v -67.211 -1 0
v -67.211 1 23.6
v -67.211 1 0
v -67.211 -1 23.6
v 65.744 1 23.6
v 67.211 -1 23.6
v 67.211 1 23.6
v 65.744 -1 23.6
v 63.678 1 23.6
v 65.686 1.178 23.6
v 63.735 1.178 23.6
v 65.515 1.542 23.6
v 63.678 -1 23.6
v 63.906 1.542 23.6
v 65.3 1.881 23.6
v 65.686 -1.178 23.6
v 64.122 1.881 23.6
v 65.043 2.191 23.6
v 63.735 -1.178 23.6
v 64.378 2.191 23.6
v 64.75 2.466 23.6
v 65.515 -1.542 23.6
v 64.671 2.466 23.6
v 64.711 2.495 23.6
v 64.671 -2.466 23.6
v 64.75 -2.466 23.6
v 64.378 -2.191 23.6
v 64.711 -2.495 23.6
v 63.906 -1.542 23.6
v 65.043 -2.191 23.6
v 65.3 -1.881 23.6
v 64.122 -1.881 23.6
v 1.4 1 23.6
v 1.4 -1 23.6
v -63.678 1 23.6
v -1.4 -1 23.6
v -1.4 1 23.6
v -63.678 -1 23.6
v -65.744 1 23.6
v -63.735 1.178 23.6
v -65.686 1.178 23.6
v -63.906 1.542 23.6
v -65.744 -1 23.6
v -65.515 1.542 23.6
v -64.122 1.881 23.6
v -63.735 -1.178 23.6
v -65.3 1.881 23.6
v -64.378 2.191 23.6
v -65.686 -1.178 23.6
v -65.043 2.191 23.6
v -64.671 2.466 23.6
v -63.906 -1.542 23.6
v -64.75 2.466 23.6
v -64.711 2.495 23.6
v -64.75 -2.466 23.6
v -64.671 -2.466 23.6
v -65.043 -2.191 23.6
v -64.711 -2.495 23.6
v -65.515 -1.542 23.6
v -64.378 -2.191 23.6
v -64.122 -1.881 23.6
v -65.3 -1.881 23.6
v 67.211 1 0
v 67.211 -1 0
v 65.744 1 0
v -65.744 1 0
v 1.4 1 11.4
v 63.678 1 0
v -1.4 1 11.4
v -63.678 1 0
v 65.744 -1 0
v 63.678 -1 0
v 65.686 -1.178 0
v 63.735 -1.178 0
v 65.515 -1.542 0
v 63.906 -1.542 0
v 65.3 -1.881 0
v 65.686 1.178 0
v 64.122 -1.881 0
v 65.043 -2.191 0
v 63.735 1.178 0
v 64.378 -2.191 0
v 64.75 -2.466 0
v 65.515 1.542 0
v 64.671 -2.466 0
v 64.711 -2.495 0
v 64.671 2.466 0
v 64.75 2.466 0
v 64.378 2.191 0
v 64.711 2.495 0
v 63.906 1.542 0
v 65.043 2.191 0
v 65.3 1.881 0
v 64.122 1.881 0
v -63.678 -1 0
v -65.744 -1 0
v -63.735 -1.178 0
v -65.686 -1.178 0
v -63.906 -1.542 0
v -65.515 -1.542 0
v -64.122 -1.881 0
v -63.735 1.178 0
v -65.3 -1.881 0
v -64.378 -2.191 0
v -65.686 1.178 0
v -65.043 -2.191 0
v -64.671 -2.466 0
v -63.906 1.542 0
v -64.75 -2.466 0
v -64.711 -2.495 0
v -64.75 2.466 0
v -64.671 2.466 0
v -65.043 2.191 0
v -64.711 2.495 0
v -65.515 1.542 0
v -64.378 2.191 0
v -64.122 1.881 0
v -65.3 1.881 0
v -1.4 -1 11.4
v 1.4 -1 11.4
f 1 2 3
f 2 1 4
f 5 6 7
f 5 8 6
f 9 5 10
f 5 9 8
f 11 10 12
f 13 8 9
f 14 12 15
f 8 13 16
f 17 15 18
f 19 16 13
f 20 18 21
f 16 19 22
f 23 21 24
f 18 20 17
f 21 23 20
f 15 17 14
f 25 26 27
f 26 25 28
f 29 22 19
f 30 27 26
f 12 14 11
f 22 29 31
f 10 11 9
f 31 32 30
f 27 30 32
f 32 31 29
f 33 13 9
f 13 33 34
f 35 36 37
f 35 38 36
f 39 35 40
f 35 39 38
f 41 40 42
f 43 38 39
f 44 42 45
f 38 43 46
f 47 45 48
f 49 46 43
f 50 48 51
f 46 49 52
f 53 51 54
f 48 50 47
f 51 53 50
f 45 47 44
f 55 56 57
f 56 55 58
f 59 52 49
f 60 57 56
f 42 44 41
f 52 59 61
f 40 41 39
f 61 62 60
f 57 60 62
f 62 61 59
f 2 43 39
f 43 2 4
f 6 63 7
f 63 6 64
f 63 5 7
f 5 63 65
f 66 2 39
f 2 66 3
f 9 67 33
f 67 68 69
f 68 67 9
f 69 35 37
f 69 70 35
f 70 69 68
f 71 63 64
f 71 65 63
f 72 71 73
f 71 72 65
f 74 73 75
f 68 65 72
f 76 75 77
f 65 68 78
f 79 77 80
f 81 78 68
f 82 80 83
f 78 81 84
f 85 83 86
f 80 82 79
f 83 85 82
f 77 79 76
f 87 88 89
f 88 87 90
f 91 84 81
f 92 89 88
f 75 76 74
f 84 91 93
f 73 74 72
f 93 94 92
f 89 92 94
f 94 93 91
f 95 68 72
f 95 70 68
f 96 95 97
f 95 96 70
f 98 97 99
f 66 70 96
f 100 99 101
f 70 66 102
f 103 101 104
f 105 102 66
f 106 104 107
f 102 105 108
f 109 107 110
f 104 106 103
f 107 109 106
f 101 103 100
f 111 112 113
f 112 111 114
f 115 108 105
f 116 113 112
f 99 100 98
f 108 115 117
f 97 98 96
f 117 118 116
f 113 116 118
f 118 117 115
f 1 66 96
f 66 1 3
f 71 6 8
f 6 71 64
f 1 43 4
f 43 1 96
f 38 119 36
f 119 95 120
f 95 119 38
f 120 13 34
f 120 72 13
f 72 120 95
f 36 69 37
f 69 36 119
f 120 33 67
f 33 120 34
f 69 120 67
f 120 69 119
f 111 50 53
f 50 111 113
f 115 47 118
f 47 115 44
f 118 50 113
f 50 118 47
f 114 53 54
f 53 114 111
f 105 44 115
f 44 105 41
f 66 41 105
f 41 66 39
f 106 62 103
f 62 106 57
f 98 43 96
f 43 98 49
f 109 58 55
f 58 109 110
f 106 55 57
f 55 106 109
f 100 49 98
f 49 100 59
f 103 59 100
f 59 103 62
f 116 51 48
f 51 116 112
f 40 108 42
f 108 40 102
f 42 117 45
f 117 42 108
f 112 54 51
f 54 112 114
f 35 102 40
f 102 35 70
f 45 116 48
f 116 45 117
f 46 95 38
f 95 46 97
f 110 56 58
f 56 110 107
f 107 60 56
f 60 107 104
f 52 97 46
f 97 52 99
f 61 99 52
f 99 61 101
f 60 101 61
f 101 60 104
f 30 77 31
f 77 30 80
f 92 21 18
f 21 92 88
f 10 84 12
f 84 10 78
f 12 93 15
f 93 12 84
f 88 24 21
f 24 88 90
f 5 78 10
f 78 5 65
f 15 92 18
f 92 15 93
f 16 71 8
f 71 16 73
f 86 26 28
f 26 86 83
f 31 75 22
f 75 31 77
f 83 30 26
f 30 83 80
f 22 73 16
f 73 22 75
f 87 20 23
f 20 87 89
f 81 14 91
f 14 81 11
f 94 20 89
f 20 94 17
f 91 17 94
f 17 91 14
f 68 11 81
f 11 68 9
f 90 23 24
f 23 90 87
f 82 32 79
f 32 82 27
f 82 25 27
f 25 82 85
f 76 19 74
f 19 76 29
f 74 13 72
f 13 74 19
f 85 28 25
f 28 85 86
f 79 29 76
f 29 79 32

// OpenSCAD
// file: token-organizer-separator-module.scad
module renderSeparator(x, y, z, r, s) {
  union() {
    difference() {
      translate([0, 0, z / 2]) cube([x - r * 1.75, y, z], center=true);
      translate([0, 0, z - z / 4]) cube([y + s * 2, y + s * 2, z / 2 + s * 2], center=true);
    }

    for (i = [-1:1]) {
      if (i != 0) {
        intersection() {
          translate([i * (x - r * 4) / 2, 0, z / 2]) cylinder(r=r - s * 2, h=z, center=true);
          translate([i * (x - r * 2) / 2, 0, z / 2]) cylinder(r=r - s * 2, h=z, center=true);
        }
      }
    }
  }
}
// main file
include <token-organizer-separator-module.scad>
$fn = 50;

sizeX = 100;
sizeY = 100;
sizeZ = 30;
spacing = .4;
thickness = 2;
radius = 4;
inset = 4;

renderSeparator(sqrt(sizeX * sizeX + sizeY * sizeY), thickness, sizeZ - inset - spacing - radius / 2, radius, spacing);
